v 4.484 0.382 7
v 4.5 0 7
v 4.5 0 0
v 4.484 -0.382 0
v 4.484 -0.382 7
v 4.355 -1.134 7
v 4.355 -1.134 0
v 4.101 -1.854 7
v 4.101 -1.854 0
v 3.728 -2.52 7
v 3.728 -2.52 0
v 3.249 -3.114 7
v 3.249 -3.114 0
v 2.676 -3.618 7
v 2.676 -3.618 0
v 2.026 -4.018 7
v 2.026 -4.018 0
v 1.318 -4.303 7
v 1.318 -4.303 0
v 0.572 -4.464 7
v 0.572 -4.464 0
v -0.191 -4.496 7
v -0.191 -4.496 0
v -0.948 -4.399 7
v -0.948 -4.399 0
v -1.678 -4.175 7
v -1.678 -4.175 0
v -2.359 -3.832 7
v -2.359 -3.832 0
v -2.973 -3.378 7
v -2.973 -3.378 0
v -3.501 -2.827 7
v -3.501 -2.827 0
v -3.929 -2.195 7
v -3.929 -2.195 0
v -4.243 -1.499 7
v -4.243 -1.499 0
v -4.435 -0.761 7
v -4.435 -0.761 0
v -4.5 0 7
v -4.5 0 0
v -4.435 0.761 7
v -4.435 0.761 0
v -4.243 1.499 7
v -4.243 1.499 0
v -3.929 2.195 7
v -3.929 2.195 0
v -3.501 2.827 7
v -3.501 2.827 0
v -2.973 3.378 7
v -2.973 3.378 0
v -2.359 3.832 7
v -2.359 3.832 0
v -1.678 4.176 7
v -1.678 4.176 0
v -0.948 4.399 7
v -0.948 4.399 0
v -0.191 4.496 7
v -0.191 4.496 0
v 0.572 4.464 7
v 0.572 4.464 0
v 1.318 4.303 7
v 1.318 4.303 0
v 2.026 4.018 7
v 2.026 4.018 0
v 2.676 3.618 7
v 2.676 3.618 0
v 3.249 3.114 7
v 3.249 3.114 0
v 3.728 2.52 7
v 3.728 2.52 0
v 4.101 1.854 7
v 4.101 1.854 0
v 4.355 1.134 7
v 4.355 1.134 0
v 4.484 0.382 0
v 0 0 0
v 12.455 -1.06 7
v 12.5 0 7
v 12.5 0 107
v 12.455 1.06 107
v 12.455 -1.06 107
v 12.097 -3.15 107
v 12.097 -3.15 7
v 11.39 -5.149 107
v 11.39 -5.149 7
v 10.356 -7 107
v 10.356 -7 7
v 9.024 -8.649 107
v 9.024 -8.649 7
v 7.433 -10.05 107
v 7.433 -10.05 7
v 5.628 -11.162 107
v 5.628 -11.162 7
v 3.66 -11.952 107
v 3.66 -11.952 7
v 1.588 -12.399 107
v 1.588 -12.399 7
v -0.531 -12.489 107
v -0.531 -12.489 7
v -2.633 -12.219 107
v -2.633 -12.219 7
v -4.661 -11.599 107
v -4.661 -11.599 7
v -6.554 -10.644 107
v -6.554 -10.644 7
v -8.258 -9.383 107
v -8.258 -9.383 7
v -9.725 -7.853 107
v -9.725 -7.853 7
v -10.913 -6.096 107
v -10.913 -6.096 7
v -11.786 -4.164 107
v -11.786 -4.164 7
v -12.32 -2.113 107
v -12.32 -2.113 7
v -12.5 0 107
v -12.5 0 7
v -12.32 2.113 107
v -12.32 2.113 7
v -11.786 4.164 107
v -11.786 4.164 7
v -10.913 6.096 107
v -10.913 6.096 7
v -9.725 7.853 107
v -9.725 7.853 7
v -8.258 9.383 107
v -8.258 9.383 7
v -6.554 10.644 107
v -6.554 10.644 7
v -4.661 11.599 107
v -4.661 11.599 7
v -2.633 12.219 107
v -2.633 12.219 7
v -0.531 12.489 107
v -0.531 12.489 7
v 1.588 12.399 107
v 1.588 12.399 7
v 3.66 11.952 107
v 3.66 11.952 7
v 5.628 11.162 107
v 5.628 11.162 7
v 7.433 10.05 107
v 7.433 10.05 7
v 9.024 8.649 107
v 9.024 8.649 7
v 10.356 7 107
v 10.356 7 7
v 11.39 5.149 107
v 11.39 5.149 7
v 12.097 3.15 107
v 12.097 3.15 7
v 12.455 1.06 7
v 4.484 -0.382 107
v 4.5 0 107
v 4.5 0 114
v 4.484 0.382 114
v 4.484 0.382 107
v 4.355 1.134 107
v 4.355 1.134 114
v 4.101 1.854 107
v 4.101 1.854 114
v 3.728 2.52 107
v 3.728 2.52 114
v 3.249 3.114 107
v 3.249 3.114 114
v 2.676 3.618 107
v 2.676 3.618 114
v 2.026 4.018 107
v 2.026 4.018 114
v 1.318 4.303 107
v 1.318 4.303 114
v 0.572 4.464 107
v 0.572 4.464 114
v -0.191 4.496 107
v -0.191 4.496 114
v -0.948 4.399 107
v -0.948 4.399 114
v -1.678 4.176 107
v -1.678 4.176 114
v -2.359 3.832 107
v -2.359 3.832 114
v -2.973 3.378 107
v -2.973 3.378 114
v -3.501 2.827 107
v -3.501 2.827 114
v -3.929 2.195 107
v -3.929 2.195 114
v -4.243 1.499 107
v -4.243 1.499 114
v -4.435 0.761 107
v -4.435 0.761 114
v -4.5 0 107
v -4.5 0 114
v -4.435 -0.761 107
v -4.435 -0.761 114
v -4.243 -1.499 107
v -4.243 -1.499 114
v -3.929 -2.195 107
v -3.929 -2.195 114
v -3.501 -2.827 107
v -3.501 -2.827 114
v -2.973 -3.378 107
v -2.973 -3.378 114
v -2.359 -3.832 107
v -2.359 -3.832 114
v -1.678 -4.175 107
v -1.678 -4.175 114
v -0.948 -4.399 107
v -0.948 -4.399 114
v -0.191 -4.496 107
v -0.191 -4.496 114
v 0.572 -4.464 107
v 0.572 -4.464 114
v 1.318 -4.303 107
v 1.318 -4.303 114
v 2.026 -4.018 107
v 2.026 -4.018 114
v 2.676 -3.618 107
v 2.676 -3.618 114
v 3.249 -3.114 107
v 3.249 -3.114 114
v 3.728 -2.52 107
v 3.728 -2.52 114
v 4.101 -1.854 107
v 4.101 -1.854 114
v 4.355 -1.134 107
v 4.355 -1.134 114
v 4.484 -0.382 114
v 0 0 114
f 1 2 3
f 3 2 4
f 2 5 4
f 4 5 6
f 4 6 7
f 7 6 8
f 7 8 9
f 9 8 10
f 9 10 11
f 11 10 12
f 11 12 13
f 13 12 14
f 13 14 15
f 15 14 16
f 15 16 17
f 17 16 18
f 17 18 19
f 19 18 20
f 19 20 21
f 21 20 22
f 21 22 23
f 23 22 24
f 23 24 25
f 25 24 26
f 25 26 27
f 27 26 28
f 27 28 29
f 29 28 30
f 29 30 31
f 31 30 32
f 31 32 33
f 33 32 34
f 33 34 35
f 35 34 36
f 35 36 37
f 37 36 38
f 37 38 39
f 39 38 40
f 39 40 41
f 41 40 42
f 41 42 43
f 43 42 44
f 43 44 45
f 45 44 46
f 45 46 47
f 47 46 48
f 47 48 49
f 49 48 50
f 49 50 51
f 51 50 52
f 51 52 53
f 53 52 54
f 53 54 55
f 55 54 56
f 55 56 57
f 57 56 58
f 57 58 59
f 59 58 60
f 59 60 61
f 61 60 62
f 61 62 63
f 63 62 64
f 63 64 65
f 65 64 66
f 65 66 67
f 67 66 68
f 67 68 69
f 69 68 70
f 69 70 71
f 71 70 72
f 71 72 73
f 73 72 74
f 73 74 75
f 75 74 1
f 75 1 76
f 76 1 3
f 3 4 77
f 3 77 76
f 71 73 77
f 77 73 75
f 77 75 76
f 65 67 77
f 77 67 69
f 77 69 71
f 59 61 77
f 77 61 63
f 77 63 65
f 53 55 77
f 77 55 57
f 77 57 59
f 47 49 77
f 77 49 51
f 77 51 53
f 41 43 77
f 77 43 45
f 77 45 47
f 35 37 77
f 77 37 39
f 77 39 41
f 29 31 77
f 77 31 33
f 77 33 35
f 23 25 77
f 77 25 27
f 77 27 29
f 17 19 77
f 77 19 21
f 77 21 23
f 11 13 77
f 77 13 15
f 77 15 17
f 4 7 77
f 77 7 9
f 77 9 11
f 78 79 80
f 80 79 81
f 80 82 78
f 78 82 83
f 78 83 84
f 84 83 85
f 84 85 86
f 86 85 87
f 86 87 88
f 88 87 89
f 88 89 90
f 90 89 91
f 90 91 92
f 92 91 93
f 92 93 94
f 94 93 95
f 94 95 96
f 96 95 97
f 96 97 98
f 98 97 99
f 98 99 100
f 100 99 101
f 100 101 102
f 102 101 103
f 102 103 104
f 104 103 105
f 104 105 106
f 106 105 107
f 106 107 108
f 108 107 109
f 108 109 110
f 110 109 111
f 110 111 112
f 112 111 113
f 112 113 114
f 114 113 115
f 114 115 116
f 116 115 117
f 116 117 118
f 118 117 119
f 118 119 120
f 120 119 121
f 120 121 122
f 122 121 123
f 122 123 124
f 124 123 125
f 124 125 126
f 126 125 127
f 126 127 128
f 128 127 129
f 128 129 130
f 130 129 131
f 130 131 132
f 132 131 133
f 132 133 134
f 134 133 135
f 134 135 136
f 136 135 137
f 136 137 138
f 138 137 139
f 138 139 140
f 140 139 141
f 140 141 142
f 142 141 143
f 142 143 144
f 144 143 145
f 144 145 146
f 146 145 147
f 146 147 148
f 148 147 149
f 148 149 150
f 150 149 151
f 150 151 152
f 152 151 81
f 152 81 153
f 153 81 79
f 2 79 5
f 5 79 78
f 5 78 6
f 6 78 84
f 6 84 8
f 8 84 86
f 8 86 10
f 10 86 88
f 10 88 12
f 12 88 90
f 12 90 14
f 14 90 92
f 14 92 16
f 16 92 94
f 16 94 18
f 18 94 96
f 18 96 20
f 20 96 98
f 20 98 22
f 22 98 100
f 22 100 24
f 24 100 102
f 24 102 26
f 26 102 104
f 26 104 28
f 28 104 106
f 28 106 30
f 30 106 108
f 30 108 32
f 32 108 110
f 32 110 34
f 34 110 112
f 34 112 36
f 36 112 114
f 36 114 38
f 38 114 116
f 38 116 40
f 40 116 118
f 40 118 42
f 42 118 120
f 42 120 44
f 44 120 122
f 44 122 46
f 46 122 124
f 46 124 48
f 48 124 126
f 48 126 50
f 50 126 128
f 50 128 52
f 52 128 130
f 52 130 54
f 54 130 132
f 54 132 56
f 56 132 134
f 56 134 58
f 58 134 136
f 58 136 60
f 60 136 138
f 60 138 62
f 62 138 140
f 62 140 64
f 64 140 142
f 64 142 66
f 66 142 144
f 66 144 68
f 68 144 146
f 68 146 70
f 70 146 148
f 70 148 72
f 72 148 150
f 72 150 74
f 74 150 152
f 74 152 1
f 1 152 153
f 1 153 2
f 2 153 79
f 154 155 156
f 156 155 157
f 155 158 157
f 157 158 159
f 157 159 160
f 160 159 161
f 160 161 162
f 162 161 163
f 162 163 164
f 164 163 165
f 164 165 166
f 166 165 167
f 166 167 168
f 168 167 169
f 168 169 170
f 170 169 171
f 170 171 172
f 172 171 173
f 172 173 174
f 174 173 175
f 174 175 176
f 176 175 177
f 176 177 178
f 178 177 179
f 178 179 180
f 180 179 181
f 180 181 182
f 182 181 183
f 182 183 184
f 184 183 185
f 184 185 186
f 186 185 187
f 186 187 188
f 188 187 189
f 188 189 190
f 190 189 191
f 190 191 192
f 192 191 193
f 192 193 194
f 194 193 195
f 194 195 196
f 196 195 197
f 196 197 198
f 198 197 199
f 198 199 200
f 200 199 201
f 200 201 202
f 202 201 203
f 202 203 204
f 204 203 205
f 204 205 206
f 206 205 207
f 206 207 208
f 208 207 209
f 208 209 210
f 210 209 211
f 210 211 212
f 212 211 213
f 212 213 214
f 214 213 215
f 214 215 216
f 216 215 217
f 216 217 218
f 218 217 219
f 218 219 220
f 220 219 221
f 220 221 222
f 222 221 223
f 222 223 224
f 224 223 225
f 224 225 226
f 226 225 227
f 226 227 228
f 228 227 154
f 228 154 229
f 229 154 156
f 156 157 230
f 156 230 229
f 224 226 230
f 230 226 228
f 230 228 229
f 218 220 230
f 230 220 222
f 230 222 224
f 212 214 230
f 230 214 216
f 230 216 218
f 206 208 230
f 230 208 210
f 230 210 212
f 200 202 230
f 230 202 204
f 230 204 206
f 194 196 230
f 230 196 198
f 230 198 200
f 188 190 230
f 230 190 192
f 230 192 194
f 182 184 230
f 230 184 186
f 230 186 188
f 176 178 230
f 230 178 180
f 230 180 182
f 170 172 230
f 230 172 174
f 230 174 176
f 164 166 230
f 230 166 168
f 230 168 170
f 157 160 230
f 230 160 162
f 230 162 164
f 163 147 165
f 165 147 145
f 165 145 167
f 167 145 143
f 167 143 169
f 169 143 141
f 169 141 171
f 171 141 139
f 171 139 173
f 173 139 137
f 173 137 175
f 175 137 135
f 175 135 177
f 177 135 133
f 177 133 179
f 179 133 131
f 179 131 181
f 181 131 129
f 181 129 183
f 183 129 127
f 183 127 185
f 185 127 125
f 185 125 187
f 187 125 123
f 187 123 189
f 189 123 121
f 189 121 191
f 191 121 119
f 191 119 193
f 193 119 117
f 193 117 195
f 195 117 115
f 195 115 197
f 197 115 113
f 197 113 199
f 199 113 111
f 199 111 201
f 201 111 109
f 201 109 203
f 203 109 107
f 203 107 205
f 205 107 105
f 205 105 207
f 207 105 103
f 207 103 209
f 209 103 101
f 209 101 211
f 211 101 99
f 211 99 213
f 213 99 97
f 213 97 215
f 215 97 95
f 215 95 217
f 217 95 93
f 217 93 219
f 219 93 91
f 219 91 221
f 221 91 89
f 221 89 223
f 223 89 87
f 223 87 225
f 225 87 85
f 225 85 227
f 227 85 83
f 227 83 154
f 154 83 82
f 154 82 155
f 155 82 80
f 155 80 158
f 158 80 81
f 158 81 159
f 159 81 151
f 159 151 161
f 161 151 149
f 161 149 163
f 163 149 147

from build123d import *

# Parameters (mm, degrees)
SKETCH2_R           = 4.5
BOSS_EXTRUDE1_DEPTH = 7
SKETCH3_R           = 12.5
BOSS_EXTRUDE2_DEPTH = 50


with BuildPart() as part:
    # Sketch2 → Boss-Extrude1 (new body)
    with BuildSketch(Plane.XY):
        Circle(SKETCH2_R)
    extrude(amount=BOSS_EXTRUDE1_DEPTH)

    # Sketch3 → Boss-Extrude2 (add)
    with BuildSketch(Plane.XY.offset(7)):
        Circle(SKETCH3_R)
    extrude(amount=BOSS_EXTRUDE2_DEPTH)

    # Mirror1: part across plane


with BuildPart() as part_1:
    add(part.part)
    add(part.part.mirror(Plane.XY.offset(57)))


solid = part_1.part
